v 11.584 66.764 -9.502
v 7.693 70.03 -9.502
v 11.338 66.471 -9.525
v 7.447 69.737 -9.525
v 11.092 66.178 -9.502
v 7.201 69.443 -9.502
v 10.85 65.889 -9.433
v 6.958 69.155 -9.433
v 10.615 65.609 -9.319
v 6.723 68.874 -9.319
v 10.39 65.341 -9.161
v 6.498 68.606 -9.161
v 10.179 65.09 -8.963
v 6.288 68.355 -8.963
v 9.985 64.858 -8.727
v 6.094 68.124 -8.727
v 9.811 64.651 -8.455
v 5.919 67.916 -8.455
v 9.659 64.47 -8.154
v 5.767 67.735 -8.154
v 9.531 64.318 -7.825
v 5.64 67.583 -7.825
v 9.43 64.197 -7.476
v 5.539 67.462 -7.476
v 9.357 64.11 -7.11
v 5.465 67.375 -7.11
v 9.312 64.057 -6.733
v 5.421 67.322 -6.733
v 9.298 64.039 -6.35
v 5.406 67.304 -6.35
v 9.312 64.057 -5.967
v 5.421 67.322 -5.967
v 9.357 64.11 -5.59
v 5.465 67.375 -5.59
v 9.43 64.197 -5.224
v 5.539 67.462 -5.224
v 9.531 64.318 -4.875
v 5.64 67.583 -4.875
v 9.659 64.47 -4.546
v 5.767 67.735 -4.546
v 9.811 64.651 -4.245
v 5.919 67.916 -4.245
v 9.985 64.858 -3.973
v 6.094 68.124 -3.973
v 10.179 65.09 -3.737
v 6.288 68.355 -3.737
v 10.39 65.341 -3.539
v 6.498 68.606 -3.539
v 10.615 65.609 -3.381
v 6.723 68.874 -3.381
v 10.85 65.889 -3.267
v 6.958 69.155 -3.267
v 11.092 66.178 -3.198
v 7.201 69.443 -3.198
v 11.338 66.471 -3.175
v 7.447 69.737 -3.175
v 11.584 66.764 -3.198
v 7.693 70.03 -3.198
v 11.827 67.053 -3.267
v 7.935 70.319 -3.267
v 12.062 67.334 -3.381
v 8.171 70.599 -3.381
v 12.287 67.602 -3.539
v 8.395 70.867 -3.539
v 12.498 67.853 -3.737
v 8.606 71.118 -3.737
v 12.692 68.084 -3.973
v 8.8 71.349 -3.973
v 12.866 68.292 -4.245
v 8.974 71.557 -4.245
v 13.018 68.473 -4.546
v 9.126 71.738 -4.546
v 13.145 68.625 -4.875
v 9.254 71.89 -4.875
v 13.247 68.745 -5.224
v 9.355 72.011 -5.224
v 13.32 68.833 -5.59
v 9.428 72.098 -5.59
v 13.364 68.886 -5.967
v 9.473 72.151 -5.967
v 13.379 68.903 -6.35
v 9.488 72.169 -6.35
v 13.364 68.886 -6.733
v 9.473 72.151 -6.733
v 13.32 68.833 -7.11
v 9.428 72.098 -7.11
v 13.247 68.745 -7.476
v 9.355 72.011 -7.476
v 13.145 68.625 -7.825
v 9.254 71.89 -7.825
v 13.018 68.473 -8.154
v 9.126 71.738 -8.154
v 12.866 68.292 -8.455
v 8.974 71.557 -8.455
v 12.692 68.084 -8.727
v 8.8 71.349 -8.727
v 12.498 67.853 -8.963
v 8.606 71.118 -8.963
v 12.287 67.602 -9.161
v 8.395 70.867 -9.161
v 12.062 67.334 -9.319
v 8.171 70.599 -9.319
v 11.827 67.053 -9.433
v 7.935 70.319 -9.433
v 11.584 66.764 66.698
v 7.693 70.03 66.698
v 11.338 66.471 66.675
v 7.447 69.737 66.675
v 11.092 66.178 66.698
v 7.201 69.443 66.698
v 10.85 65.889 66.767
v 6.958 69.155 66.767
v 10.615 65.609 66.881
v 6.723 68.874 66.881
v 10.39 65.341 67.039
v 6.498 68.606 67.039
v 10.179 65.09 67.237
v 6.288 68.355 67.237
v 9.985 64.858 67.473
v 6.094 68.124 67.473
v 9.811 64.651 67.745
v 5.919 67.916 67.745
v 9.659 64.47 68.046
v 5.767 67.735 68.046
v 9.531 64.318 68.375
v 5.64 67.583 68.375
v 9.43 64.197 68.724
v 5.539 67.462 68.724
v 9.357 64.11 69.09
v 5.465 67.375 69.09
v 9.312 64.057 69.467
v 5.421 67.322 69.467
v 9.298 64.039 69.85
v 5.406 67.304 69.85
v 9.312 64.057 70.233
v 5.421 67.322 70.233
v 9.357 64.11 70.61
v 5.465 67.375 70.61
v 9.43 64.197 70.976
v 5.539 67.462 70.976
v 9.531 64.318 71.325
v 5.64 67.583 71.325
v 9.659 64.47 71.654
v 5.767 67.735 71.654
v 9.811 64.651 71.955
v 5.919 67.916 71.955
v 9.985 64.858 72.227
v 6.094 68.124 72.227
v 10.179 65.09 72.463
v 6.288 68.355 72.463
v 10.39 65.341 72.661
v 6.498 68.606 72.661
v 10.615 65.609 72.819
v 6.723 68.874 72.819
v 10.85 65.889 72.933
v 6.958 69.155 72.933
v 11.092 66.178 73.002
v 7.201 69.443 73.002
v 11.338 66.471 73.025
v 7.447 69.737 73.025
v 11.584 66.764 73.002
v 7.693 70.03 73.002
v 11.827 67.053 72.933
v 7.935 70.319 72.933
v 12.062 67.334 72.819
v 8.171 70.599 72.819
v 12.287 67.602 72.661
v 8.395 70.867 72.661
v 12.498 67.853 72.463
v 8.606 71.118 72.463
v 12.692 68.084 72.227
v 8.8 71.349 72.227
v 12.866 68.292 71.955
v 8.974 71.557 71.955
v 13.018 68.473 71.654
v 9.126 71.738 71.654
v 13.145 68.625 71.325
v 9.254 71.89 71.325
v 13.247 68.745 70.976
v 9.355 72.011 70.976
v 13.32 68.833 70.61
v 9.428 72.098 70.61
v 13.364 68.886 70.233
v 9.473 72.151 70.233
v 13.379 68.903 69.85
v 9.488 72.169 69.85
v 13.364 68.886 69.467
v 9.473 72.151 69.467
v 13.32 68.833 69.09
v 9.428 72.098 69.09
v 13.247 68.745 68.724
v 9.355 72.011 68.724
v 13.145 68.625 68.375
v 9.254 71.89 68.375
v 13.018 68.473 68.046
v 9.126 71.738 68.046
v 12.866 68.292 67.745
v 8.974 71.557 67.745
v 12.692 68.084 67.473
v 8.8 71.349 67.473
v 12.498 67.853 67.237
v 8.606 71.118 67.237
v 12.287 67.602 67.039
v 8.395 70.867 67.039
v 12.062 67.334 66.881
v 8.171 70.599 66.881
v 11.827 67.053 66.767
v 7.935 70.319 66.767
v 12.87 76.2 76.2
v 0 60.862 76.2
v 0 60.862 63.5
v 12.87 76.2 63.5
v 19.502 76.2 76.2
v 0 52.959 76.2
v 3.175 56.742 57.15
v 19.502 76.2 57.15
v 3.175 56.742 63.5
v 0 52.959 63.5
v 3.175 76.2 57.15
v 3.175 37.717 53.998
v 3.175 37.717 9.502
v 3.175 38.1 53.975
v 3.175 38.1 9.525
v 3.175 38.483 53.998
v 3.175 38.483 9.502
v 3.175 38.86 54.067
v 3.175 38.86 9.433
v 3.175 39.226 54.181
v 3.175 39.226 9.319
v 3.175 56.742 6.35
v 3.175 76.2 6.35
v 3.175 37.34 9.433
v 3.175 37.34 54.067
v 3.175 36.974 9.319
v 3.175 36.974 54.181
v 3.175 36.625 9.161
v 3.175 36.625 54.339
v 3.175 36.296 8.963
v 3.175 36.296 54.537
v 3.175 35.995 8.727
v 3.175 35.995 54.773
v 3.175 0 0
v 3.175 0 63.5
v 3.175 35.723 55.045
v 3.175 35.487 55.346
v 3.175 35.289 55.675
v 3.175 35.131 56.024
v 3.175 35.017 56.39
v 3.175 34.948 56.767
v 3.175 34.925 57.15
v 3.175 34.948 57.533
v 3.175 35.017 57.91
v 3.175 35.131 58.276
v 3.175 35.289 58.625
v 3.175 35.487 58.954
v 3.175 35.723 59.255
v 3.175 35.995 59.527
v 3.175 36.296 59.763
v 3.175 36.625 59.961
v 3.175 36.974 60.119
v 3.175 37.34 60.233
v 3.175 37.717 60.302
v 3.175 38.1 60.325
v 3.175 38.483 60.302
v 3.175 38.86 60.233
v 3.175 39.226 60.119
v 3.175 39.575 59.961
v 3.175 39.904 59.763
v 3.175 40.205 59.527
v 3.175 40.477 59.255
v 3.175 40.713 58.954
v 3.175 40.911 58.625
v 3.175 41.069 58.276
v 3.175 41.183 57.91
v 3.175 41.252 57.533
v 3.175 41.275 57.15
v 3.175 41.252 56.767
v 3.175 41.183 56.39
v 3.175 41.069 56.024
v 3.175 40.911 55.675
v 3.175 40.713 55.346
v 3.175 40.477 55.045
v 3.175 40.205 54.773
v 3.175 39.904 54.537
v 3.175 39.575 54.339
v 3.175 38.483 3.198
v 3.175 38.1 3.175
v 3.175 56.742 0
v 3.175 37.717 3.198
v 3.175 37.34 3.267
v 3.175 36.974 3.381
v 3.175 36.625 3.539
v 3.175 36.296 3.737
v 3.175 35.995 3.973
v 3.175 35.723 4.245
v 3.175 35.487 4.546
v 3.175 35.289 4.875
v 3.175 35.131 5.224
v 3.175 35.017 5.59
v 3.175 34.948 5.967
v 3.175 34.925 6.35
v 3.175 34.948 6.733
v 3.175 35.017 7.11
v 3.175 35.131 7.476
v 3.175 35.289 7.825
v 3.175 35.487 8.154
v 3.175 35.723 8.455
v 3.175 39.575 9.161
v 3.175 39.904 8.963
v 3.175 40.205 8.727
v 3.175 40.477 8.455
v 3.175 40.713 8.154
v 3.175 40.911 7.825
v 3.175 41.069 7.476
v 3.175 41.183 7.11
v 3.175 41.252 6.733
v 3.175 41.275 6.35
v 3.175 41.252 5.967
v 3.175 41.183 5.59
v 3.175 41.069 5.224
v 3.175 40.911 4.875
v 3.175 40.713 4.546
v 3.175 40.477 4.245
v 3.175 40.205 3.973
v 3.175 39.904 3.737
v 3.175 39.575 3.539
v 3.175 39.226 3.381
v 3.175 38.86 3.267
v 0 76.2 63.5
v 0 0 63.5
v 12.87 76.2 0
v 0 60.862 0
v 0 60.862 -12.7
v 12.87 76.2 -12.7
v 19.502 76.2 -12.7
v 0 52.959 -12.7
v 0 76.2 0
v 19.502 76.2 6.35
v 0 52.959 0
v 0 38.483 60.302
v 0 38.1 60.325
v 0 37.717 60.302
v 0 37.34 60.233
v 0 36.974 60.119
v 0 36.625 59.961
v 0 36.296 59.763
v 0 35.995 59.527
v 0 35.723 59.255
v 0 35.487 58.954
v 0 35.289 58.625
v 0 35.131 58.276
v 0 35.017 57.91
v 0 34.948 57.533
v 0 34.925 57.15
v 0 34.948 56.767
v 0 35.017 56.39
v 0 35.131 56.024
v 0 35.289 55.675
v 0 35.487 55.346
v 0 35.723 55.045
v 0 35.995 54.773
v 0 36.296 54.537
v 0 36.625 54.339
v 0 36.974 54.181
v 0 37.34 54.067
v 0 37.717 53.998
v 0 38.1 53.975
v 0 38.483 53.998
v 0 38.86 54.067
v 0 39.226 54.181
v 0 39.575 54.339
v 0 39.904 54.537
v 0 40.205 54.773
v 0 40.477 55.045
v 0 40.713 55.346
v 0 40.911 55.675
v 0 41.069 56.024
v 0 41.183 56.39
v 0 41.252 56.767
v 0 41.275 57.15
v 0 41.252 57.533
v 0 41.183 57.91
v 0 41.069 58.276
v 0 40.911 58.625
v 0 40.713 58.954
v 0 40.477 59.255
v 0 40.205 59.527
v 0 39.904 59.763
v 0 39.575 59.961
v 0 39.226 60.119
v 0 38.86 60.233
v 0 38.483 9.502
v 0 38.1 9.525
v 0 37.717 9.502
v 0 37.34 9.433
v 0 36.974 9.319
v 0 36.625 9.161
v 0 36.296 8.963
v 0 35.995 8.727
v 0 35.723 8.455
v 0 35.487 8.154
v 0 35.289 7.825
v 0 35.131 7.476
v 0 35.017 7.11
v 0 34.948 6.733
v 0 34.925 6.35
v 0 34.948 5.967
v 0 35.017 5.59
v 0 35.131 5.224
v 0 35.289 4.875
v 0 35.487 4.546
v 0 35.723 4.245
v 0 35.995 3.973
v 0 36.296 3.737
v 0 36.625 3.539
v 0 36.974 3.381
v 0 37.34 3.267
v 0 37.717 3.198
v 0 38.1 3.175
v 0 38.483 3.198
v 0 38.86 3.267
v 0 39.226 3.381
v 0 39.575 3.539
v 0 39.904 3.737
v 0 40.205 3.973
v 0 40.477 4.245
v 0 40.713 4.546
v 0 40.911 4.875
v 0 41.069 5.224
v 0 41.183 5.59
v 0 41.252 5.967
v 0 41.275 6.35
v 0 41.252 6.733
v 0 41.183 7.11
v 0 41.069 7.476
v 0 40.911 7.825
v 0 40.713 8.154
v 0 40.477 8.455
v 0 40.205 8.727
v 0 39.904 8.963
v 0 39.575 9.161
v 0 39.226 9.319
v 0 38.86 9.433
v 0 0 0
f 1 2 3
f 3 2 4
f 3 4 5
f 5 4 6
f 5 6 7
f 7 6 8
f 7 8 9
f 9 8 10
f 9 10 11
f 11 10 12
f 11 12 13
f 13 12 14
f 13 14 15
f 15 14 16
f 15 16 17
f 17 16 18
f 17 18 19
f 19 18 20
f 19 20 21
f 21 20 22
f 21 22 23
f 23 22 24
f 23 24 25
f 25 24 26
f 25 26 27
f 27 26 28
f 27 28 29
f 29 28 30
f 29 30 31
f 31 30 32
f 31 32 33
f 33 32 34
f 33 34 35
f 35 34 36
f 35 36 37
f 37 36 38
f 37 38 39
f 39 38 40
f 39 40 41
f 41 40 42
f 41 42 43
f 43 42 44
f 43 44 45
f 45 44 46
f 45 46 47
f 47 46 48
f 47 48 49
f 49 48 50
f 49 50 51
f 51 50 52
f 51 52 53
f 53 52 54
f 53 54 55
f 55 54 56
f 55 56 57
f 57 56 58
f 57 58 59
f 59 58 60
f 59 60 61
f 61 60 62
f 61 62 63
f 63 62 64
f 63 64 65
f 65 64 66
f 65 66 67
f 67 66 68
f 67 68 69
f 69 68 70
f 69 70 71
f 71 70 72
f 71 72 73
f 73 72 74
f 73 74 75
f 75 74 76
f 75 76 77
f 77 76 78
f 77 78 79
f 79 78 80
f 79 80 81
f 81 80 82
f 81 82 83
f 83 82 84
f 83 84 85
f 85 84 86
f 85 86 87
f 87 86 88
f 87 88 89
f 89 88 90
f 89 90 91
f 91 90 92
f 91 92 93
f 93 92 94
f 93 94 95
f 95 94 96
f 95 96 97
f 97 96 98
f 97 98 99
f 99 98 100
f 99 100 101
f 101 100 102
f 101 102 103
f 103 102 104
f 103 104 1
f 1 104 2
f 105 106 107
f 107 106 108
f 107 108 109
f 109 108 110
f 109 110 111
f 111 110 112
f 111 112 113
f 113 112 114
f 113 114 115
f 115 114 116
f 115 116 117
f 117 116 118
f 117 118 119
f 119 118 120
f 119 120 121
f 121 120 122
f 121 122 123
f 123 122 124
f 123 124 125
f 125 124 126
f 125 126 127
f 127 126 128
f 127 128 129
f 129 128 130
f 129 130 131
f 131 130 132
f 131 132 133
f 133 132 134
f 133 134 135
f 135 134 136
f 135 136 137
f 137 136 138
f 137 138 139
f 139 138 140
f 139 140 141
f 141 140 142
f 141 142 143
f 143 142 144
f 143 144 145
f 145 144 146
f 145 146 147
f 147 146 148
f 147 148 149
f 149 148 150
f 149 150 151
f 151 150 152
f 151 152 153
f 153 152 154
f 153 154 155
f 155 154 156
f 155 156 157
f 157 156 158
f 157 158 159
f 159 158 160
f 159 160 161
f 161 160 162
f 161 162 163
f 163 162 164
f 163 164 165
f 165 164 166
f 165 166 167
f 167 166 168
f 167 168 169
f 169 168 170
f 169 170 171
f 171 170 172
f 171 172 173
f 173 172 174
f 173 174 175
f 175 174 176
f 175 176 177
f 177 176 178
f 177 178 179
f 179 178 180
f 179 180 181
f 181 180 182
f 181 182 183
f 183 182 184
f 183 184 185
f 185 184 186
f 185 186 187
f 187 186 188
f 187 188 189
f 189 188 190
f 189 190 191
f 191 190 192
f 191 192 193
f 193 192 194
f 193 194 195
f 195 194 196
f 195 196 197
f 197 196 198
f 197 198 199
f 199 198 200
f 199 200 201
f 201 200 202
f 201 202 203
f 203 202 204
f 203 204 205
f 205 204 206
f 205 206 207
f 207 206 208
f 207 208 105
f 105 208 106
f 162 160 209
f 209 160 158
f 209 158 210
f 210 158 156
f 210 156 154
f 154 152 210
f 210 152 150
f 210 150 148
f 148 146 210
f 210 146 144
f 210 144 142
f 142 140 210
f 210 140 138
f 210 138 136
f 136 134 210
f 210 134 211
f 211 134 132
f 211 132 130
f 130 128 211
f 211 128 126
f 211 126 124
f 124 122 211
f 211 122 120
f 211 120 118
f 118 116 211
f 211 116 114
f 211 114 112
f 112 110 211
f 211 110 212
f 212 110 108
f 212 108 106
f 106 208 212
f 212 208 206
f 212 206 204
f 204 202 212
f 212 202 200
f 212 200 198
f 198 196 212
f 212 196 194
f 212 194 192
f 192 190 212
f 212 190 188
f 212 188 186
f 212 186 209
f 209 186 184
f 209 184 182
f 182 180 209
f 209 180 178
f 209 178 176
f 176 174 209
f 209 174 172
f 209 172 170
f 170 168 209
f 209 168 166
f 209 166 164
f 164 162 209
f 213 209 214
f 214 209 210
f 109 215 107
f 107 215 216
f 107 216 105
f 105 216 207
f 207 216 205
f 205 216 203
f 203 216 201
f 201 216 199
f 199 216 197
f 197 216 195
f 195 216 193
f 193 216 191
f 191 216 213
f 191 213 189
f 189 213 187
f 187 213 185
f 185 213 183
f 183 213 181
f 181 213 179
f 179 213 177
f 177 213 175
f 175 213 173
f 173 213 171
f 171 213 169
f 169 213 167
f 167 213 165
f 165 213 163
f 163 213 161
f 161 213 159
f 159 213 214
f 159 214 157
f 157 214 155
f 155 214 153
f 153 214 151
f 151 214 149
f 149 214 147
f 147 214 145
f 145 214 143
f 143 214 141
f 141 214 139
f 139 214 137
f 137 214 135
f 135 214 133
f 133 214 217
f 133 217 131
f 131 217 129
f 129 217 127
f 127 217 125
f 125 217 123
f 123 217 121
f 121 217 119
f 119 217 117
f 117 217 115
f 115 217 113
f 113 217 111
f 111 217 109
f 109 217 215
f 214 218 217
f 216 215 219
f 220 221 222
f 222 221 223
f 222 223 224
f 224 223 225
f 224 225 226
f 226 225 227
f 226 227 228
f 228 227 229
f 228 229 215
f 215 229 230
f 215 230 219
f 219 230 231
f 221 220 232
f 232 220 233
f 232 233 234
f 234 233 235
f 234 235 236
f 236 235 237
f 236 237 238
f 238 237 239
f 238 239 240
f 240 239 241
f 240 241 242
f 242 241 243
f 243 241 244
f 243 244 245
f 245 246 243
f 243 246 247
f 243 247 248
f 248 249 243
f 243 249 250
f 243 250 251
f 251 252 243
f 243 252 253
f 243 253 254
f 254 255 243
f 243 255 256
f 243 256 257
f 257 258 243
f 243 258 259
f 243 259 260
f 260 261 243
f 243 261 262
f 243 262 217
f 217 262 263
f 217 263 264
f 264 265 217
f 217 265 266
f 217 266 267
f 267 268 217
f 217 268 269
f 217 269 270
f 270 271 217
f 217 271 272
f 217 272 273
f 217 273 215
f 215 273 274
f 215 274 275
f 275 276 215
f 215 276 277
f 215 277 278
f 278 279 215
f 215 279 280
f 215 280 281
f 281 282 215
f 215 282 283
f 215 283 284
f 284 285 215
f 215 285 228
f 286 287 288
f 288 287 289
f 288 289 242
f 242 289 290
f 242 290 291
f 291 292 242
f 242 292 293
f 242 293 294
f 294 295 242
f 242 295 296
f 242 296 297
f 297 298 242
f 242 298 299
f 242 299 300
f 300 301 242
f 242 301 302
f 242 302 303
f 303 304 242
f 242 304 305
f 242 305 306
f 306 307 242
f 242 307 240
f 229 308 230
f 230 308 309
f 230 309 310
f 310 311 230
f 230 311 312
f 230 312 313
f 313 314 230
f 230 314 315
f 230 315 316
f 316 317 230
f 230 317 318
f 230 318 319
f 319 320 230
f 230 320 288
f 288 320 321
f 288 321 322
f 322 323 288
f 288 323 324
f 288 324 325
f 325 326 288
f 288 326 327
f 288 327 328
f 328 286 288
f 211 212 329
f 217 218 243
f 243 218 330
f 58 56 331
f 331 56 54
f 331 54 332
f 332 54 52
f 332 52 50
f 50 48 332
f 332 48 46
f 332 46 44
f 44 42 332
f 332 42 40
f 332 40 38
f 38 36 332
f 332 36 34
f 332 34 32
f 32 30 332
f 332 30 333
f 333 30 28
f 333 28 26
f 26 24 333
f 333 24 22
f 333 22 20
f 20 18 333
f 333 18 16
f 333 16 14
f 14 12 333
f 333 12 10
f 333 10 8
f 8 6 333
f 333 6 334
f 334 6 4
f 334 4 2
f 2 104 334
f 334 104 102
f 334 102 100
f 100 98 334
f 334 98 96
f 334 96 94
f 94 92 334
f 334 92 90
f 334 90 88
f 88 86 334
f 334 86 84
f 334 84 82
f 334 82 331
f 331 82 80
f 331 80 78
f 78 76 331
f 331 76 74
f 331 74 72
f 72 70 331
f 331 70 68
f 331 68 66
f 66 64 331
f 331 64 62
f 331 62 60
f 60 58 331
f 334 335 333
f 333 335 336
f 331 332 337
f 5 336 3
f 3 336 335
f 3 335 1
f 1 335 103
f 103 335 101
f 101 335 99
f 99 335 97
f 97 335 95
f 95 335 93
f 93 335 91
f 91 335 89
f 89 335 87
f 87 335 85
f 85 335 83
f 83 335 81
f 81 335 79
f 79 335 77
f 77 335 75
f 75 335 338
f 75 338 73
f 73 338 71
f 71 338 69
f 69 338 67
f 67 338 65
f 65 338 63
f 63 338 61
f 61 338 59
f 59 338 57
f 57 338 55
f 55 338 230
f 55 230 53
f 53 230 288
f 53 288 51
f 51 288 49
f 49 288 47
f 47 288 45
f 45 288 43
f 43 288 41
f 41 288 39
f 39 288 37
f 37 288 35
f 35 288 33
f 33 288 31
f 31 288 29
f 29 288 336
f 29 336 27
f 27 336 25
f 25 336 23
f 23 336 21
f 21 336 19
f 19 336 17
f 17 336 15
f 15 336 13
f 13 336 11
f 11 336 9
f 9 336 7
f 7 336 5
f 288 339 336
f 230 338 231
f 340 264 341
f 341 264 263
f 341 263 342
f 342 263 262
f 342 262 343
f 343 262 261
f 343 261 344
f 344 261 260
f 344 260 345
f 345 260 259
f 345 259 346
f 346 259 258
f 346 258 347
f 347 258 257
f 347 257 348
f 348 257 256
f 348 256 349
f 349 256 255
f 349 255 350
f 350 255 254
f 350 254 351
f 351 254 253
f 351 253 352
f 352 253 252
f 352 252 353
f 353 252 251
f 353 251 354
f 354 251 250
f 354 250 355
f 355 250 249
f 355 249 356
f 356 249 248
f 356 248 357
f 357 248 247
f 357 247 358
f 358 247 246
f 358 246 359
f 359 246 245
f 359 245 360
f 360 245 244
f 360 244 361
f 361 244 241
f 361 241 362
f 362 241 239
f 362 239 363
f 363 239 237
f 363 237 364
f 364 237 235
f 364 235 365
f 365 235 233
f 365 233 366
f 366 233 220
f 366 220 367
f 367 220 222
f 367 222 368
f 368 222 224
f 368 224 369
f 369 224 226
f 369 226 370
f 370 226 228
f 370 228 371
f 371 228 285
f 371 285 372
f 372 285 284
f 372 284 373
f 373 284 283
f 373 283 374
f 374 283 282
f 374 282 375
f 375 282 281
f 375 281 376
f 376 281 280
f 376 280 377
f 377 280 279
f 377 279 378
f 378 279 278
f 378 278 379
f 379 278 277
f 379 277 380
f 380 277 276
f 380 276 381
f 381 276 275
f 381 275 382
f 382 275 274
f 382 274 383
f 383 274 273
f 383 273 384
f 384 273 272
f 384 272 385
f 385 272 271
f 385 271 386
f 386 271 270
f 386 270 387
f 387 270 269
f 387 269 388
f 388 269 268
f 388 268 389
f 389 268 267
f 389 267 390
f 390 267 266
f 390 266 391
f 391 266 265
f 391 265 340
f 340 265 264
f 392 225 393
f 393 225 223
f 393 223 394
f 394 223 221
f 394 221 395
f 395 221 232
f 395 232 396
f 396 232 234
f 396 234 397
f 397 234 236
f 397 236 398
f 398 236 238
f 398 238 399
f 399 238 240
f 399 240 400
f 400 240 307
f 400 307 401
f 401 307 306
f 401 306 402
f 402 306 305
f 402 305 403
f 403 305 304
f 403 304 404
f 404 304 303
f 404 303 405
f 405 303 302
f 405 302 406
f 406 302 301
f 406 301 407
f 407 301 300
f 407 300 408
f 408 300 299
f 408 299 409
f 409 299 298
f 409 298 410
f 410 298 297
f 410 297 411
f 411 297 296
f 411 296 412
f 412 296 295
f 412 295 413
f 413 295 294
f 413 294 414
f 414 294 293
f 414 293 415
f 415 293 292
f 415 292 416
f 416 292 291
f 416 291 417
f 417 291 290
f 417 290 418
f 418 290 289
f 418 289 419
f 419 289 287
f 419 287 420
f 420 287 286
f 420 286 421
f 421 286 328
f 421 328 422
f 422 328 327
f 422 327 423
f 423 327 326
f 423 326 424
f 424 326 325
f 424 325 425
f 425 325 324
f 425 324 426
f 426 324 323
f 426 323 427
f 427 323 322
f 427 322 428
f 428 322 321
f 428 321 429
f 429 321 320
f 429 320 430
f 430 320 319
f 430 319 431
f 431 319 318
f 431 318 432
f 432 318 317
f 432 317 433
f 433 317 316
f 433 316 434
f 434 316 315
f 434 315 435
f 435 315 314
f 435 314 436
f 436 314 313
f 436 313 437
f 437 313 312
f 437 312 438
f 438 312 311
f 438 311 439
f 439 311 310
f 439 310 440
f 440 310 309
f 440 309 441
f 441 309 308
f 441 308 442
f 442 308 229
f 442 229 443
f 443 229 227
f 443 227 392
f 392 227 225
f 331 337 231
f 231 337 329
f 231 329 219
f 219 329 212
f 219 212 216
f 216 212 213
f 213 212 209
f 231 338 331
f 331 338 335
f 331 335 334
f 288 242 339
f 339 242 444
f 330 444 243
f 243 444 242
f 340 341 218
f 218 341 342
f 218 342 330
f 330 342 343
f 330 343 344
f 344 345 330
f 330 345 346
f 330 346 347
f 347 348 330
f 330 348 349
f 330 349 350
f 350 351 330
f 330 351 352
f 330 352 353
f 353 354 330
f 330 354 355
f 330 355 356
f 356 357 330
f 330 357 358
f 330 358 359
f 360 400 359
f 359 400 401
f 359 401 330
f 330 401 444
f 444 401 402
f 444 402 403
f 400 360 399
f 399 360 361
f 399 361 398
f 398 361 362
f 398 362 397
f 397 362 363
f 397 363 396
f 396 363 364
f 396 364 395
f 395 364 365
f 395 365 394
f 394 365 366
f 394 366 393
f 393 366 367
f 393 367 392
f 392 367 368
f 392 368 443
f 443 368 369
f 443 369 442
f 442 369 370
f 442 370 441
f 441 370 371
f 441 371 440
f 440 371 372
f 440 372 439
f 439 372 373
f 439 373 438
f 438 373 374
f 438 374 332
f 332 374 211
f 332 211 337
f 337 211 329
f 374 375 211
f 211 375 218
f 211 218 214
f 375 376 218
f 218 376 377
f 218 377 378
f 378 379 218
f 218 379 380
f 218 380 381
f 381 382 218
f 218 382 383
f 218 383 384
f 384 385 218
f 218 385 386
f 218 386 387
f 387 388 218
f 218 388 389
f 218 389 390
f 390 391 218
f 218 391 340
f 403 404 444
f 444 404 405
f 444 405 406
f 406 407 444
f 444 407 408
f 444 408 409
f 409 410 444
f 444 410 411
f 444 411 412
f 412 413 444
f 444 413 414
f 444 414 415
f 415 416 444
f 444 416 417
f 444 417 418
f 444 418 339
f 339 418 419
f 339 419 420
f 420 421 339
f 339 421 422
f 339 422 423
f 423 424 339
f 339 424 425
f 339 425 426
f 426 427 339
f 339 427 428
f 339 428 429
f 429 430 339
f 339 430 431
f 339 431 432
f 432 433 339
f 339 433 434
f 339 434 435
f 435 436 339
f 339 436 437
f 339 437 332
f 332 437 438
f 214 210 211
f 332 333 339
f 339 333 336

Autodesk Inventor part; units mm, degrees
ref_plane "YZ Plane" through (0, 0, 0) normal (1, 0, 0) x (0, 1, 0)
ref_plane "XZ Plane" through (0, 0, 0) normal (0, 1, 0) x (-1, 0, 0)
ref_plane "XY Plane" through (0, 0, 0) normal (0, 0, 1) x (1, 0, 0)
sketch "Sketch1" plane through (0, 0, 0) normal (1, 0, 0) x (0, 1, 0)
  line L0 (76.2, 63.5) -> (0, 63.5)
  line L1 (0, 63.5) -> (0, 0)
  line L2 (0, 0) -> (76.2, 0)
  line L3 (76.2, 0) -> (76.2, 63.5)
  dimension "d0" = 76.2
  dimension "d1" = 63.5
extrude "Extrusion1" add sketch "Sketch1" along normal blind 3.175
sketch "Sketch2" plane through (3.175, 0, 0) normal (1, 0, 0) x (0, 0, -1)
  line L0 (-63.5, 76.2) -> (-63.5, 0) projected
  line L1 (0, 0) -> (0, 76.2) projected
  line L2 (0, 76.2) -> (-63.5, 76.2) projected
  point P0 (-57.15, 38.1)
  point P1 (-6.35, 38.1)
  dimension "d11" = 6.35
  dimension "d12" = 6.35
  dimension "d13" = 38.1
  dimension "d14" = 38.1
hole "Hole1" at (3.175, 38.1, 57.15) at (3.175, 38.1, 6.35) direction (-1, 0, 0) diameter 6.35 end through all
sketch "Sketch3" plane through (0, 0, 0) normal (0, 0, -1) x (-1, 0, 0)
  line L0 (-19.5018, 76.2) -> (-3.175, 56.7425)
  line L1 (-3.175, 56.7425) -> (-3.175, 76.2)
  line L2 (-3.175, 0) -> (-3.175, 76.2) projected
  line L3 (-3.175, 76.2) -> (-19.5018, 76.2)
  line L4 (0, 76.2) -> (-3.175, 76.2) projected
  point P0 (0, 0)
  dimension "d15" = 40
  dimension "d18" = 25.4
extrude "Extrusion2" add sketch "Sketch3" against normal blind 6.35
sketch "Sketch4" plane through (0, 0, 0) normal (0, 0, -1) x (-1, 0, 0)
  line L0 (0, 76.2) -> (-19.5018, 76.2) projected
  line L1 (-19.5018, 76.2) -> (0, 52.9587)
  line L2 (-19.5018, 76.2) -> (-12.8703, 76.2)
  line L3 (-12.8703, 76.2) -> (0, 60.8617)
  line L4 (-3.175, 56.7425) -> (-19.5018, 76.2) projected
  line L5 (0, 52.9587) -> (0, 60.8617)
  line L6 (0, 0) -> (0, 76.2) projected
  point P0 (-3.175, 76.2)
  dimension "d21" = 5.08
extrude "Extrusion3" add sketch "Sketch4" along normal blind 12.7 contours L3 L5 L1 L0
ref_plane "Work Plane1" through (0, 0, 31.75) normal (0, 0, -1) x (-1, 0, 0)
mirror "Mirror1" about plane through (0, 0, 31.75) normal (0, 0, -1) of "Extrusion2", "Extrusion3"
sketch "Sketch5" plane through (12.8703, 76.2, -12.7) normal (-0.766, 0.6428, 0) x (0, 0, 1)
  line L0 (88.9, -20.0227) -> (88.9, 0) projected
  line L1 (76.2, -21.1374) -> (88.9, -21.1374) projected
  point P0 (12.7, -66.6455)
  point P1 (6.35, -8.4374)
  point P2 (82.55, -8.4374)
  point P3 (88.9, -15.0833)
  point P4 (88.9, -26.0768)
  dimension "d31" = 76.2
  dimension "d32" = 6.35
  dimension "d33" = 12.7
hole "Hole2" at (7.4469, 69.7366, -6.35) at (7.4469, 69.7366, 69.85) direction (0.766, -0.6428, 0) diameter 6.35 end through all
properties part number "conecter bracet cover plate"
